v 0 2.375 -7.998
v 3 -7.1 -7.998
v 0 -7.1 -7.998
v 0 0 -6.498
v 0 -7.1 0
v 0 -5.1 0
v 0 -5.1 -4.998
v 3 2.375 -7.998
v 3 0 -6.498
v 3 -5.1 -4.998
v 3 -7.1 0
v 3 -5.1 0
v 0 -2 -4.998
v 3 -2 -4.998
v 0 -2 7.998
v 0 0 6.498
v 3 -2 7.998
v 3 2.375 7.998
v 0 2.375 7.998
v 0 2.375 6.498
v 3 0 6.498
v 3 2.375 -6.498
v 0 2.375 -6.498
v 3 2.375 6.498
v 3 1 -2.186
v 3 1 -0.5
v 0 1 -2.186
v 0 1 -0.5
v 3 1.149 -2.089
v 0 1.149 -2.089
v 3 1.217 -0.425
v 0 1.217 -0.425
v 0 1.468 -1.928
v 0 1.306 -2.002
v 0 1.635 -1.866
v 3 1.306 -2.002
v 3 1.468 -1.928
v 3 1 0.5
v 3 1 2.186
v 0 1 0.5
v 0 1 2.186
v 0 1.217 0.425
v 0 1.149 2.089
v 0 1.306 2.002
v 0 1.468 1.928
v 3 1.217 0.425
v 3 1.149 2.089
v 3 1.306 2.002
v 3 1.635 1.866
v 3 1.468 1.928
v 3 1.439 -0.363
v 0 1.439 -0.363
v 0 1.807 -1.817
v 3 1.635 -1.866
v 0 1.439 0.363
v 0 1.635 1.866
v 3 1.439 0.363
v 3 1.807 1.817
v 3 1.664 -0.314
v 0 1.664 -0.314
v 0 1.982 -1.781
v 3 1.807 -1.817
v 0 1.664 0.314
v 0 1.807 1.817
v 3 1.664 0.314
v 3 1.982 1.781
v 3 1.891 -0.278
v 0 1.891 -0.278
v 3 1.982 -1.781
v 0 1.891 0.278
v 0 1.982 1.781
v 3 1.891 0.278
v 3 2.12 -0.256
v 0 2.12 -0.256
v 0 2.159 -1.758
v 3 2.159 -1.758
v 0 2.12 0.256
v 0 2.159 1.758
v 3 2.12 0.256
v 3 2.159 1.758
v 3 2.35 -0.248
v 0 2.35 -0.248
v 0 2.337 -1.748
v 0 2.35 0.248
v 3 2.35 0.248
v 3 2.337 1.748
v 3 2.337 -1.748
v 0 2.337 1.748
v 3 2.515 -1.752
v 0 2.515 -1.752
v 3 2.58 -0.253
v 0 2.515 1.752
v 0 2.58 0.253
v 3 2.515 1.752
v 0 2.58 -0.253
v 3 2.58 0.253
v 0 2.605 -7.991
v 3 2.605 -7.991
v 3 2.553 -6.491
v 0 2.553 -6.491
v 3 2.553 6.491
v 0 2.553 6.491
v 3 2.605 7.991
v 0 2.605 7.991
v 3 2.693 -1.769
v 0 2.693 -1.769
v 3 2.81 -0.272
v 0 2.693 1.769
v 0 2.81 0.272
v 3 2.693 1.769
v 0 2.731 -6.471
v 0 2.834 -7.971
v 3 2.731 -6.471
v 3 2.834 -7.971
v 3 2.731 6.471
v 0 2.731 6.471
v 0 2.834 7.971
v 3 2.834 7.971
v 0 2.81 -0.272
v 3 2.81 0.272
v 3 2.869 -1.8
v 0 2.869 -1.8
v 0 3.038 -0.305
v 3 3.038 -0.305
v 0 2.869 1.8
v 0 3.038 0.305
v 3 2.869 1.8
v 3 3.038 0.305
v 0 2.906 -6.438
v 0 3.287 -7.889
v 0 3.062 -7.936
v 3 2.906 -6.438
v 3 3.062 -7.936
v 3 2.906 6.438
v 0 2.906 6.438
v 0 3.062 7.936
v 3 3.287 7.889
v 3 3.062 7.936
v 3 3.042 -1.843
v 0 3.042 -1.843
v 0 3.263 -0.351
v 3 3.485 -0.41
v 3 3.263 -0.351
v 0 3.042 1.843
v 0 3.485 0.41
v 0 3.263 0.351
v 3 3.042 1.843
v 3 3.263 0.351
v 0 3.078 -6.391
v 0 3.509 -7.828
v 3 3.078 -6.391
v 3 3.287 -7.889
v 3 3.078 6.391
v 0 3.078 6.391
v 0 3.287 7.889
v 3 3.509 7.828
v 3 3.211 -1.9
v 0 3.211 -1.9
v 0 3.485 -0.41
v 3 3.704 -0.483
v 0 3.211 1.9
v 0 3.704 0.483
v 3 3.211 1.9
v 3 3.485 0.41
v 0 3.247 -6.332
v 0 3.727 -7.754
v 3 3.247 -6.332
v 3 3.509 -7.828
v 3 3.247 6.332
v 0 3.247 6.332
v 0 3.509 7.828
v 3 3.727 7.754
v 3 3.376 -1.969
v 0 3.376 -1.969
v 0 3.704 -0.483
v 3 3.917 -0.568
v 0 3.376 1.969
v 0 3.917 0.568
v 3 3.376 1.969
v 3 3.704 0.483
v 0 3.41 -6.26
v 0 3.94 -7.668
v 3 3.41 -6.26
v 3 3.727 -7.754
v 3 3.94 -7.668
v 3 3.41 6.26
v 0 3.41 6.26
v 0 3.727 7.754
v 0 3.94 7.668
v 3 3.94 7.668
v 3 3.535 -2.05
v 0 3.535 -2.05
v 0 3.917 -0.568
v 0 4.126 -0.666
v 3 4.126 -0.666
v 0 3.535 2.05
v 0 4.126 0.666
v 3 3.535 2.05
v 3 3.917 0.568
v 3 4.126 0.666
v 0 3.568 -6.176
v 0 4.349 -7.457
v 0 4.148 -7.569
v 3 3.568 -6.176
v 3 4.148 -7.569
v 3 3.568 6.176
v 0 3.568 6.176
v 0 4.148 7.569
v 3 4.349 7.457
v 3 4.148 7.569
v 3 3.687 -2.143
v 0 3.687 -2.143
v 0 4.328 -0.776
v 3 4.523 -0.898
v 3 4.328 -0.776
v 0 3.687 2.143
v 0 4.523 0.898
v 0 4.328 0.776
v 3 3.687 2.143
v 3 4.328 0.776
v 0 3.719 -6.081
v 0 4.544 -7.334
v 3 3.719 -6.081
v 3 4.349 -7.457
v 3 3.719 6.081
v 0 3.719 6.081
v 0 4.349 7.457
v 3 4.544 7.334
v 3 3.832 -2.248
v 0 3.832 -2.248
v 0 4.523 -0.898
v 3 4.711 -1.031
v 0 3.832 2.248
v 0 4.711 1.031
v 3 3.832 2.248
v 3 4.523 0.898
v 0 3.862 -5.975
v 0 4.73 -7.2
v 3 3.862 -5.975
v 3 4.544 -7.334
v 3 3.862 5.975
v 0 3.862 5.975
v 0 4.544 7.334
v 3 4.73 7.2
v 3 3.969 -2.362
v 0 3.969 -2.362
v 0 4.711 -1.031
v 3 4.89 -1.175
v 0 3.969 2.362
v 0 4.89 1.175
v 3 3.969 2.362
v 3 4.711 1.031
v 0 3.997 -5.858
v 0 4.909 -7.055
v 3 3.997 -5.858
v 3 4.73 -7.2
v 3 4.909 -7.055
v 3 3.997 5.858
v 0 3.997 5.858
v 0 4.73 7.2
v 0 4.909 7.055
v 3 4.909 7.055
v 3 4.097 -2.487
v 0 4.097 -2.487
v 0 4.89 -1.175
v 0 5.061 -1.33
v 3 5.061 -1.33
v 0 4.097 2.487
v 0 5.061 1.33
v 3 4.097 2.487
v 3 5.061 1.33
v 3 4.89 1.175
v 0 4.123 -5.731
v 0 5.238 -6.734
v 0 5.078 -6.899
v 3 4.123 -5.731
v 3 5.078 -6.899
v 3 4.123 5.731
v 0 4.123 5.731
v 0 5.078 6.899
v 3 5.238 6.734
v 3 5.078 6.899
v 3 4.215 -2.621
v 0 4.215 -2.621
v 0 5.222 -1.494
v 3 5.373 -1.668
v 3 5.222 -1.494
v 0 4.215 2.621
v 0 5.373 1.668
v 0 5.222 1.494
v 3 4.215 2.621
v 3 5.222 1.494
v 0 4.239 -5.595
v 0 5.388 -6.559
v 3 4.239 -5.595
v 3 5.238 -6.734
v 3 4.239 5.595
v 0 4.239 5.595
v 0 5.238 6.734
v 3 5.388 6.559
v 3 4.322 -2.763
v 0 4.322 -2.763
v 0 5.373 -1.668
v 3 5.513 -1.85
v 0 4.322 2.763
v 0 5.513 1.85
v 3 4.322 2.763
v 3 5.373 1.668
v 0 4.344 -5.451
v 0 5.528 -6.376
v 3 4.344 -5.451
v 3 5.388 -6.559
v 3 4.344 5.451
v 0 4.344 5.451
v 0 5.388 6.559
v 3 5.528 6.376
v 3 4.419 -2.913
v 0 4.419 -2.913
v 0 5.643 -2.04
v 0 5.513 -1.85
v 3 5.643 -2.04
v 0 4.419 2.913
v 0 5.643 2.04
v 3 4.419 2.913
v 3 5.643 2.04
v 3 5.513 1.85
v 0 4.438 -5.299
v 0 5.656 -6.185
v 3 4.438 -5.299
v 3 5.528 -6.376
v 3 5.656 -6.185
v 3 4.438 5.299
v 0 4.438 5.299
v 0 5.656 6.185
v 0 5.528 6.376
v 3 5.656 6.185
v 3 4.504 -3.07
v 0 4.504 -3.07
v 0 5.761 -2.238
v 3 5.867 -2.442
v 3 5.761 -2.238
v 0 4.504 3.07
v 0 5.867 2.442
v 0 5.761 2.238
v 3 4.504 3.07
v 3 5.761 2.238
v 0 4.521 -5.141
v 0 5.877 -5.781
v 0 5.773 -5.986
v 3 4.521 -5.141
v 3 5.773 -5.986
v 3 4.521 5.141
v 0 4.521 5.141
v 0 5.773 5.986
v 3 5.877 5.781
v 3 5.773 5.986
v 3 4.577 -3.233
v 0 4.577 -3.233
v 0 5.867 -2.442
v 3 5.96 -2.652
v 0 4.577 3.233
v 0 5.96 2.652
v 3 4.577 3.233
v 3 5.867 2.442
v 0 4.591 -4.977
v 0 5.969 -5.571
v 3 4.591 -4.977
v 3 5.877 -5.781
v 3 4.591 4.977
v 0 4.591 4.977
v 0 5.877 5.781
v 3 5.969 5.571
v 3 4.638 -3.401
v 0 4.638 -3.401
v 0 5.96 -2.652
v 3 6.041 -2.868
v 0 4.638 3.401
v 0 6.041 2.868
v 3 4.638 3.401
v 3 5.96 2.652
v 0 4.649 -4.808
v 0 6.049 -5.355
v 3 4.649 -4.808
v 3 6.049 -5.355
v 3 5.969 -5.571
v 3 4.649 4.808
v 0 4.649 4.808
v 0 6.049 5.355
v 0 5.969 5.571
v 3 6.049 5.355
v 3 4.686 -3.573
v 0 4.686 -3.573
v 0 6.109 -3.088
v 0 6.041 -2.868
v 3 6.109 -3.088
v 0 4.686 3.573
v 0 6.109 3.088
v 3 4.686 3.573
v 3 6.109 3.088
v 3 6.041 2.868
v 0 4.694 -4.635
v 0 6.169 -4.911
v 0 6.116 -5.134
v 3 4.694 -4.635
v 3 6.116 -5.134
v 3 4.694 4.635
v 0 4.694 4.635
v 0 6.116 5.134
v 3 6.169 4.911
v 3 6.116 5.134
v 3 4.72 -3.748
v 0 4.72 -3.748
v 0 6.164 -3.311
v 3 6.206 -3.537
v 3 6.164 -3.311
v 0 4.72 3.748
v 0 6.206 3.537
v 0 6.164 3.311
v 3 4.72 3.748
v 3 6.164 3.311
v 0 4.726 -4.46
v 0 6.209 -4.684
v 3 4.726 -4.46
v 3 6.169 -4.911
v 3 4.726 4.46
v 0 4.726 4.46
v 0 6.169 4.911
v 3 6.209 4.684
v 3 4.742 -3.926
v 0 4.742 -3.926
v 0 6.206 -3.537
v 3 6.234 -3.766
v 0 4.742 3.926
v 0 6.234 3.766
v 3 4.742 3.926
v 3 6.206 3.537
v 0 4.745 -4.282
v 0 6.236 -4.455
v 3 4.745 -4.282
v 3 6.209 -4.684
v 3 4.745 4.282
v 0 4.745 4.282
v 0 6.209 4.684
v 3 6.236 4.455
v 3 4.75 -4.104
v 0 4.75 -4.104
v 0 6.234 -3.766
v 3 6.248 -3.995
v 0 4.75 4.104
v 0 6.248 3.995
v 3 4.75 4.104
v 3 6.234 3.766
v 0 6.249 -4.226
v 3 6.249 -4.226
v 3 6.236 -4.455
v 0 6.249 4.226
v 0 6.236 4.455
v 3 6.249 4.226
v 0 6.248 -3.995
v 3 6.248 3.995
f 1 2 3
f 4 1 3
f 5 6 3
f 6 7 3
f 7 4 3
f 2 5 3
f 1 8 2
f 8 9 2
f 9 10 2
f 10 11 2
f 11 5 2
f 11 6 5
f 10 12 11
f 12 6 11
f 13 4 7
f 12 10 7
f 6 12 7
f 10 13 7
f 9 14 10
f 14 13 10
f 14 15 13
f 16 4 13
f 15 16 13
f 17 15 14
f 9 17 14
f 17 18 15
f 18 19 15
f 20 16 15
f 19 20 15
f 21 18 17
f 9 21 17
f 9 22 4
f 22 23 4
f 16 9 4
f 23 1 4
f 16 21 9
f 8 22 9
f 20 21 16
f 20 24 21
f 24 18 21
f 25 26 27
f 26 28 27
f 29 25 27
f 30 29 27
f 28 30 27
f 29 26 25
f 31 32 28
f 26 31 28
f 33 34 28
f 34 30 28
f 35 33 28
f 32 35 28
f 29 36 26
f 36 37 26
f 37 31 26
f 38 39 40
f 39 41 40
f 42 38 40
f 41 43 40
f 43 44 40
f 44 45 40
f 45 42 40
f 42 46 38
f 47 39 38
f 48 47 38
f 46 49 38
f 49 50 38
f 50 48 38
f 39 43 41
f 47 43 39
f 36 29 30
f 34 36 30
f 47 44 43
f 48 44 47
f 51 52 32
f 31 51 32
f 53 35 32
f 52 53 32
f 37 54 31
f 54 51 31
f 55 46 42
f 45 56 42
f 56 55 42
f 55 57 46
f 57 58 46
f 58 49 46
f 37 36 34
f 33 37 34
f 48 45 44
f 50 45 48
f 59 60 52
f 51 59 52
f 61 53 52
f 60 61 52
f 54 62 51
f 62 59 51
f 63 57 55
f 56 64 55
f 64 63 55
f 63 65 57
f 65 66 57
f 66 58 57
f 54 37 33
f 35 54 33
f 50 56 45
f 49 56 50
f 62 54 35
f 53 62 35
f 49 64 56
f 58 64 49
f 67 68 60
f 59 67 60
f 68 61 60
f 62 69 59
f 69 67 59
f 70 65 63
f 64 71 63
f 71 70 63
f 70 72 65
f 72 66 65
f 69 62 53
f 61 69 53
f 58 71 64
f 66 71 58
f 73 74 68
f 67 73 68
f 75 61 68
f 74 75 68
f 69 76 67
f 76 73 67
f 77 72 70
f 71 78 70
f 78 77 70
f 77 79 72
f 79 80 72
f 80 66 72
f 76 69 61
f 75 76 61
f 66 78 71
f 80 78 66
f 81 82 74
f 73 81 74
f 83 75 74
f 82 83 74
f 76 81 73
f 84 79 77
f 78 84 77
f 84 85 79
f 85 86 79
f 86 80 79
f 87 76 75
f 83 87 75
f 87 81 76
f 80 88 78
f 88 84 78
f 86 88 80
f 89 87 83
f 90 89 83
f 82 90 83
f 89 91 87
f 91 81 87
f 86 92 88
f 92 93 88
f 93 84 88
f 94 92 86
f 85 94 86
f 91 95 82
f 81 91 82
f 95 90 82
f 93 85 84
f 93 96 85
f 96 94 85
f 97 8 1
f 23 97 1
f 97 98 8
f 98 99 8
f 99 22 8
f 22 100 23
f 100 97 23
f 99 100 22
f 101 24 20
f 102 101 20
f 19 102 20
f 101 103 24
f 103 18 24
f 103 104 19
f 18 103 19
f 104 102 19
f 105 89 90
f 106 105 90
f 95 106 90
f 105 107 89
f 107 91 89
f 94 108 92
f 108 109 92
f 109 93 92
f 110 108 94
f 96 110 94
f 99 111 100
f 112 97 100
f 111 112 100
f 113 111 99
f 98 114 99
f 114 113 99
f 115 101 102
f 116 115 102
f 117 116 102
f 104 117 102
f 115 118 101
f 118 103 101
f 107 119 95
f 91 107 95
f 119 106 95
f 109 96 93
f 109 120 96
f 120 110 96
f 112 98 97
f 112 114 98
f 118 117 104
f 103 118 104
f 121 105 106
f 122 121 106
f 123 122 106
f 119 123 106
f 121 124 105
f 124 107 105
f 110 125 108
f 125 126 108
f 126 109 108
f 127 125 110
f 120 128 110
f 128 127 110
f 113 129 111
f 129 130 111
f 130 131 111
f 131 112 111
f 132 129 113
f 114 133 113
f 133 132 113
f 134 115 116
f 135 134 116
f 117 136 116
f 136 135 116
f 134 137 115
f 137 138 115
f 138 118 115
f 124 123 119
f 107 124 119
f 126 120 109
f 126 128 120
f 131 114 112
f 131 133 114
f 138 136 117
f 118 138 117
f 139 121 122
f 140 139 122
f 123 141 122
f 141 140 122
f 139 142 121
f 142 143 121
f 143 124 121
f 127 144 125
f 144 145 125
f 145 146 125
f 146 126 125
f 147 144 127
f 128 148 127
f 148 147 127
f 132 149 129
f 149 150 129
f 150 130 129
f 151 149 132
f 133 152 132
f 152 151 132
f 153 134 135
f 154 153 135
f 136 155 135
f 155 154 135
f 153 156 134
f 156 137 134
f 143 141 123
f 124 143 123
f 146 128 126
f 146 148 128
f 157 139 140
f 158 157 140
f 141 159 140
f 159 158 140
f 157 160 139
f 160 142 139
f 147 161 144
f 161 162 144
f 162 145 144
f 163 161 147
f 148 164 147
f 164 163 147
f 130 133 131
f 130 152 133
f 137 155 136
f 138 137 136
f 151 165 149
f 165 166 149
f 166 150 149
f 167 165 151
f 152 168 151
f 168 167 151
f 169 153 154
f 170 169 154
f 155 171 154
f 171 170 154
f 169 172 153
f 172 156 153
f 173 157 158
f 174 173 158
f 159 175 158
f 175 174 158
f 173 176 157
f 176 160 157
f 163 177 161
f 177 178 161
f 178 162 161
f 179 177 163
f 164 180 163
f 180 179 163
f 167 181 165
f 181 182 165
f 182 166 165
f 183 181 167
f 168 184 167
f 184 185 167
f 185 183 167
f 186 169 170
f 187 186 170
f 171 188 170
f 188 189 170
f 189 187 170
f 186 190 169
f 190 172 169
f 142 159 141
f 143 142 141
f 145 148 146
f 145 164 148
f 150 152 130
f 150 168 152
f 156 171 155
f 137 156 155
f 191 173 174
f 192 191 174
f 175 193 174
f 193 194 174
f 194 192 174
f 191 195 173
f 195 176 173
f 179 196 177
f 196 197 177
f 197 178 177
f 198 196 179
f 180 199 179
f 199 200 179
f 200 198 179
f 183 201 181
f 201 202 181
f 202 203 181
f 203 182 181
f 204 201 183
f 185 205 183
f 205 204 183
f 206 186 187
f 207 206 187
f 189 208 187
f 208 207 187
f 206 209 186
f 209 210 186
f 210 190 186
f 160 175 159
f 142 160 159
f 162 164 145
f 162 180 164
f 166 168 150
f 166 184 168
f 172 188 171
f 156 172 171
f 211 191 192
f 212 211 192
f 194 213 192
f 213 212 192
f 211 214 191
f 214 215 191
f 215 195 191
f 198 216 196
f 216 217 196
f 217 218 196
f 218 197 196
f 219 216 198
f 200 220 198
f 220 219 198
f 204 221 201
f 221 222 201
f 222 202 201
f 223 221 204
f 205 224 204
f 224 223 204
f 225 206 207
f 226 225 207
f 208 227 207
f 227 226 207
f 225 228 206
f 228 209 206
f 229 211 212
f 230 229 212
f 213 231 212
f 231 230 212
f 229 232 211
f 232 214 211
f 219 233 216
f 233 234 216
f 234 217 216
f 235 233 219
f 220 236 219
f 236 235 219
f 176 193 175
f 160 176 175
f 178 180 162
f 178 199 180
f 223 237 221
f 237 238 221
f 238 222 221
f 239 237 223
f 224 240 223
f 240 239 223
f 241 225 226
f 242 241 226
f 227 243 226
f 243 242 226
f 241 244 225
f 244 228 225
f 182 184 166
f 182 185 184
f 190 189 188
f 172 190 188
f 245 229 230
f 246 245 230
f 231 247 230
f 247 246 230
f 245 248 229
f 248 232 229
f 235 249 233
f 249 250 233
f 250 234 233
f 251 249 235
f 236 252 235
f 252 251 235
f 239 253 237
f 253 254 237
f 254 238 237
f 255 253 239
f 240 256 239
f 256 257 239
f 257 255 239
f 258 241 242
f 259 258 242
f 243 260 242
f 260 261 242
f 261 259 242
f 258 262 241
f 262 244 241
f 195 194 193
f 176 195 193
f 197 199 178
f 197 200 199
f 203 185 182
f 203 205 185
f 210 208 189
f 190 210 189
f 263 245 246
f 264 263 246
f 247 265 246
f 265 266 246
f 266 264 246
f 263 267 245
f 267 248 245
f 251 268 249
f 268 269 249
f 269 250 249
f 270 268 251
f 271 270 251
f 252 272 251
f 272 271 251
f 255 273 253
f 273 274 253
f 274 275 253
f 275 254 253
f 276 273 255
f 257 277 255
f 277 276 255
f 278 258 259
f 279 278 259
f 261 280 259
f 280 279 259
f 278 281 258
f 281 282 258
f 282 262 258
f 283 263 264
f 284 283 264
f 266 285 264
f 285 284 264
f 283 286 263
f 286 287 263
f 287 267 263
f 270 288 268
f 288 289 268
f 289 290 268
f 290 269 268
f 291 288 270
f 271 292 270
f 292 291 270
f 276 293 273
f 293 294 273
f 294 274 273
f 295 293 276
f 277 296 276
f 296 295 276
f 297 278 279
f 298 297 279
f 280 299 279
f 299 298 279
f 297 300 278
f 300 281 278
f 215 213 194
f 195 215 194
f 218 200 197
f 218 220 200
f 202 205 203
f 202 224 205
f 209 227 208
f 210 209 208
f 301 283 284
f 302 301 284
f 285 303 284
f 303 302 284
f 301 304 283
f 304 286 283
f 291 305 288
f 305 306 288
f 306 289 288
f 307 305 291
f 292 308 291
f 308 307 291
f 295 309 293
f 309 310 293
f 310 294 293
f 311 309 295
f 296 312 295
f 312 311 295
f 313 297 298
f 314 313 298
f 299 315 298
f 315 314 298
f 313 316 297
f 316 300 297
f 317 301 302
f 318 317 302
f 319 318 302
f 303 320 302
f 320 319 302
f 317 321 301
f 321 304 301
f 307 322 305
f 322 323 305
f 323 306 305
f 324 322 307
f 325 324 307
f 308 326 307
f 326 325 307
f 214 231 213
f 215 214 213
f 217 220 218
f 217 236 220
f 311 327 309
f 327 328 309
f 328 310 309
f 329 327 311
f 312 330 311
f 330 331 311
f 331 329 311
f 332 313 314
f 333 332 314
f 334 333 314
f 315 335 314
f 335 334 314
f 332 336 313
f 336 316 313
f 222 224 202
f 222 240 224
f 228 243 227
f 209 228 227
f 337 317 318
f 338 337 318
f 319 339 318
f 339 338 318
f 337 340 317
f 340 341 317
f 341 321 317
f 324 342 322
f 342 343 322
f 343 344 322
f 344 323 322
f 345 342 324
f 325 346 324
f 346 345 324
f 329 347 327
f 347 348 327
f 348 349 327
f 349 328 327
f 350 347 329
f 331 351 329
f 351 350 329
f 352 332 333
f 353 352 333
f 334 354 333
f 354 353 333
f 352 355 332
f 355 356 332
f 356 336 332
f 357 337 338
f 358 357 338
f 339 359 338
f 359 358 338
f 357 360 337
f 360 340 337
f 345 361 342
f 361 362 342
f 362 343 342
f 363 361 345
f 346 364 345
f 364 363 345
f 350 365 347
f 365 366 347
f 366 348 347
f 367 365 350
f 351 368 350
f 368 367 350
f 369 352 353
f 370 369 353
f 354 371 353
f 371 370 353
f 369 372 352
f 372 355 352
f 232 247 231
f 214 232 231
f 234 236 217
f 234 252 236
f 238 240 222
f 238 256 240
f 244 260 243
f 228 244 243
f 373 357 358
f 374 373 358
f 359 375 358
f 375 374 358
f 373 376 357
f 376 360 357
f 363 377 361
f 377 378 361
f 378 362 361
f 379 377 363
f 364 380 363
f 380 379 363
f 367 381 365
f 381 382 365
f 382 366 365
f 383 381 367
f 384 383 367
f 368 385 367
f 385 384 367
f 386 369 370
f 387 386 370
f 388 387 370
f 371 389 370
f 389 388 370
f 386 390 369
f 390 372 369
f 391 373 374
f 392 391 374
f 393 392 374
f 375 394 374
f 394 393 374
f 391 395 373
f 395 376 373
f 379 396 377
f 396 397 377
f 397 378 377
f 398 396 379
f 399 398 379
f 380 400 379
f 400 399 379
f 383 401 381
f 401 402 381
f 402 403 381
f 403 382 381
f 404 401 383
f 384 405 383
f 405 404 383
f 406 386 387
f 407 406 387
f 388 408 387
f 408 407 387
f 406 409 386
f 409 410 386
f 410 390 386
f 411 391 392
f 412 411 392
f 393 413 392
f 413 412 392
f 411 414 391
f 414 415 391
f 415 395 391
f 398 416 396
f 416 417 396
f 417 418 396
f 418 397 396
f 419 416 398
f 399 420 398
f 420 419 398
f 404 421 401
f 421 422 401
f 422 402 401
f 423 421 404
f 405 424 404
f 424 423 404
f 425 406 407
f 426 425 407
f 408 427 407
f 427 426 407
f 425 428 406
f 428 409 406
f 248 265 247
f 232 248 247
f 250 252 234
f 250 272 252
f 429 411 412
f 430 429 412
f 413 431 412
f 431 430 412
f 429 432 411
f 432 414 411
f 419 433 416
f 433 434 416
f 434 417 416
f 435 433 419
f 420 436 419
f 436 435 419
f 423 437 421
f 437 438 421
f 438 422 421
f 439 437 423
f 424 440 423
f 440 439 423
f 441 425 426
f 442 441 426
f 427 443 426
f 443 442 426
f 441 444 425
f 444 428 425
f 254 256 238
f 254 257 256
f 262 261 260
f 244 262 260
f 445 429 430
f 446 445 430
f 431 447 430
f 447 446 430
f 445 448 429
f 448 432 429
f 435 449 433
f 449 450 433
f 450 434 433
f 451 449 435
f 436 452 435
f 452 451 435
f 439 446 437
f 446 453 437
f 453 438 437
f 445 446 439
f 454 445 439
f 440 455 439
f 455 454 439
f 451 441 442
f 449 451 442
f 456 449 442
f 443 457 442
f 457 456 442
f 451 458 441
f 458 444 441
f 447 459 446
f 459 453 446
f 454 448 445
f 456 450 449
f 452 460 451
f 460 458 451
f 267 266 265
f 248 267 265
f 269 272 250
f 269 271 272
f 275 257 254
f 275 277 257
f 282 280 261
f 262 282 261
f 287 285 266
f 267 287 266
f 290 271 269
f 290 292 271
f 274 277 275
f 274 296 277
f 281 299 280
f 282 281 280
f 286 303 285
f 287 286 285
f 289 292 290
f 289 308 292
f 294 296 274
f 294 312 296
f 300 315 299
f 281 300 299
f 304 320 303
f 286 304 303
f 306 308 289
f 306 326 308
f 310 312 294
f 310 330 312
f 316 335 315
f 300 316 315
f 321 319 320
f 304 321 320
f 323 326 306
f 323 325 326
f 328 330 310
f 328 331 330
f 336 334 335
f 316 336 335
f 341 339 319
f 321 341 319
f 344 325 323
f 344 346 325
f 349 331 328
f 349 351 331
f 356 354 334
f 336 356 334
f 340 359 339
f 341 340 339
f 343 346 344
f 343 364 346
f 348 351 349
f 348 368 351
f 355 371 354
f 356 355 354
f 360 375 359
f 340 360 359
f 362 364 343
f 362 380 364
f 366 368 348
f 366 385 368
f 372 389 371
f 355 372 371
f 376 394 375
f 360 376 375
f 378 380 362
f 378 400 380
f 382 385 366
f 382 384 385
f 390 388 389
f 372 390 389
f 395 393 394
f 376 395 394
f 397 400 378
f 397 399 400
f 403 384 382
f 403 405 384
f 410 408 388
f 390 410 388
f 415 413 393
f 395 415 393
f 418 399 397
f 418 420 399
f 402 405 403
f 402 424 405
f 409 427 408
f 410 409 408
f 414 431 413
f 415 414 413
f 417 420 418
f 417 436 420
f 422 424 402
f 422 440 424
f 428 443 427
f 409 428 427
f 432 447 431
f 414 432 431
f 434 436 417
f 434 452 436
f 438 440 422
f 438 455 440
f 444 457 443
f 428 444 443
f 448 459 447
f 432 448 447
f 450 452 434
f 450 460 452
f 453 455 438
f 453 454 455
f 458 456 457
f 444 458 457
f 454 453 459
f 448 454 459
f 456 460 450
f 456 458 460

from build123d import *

# Parameters (mm, degrees)
BOSS_EXTRUDE1_DEPTH = 3
BOSS_EXTRUDE2_DEPTH = 3


with BuildPart() as part:
    # Sketch1 → Boss-Extrude1 (new body)
    with BuildSketch(Plane(origin=(0, 0, 0), x_dir=(0, 0, -1), z_dir=(1, 0, 0))):
        with BuildLine():
            Line((-7.997844187, 2.375), (-7.997844187, -2))
            Line((-7.997844187, -2), (7.997844187, -2))
            Line((7.997844187, -2), (7.997844187, 2.375))
            ThreePointArc((7.997844187, 2.375), (3.423879317, 6.186439769), (0.5, 1))
            Line((0.5, 1), (2.186352513, 1))
            ThreePointArc((2.186352513, 1), (3.401228889, 4.637718799), (6.497844187, 2.375))
            Line((6.497844187, 2.375), (6.497844187, 0))
            Line((6.497844187, 0), (-6.497844187, 0))
            Line((-6.497844187, 0), (-6.497844187, 2.375))
            ThreePointArc((-6.497844187, 2.375), (-3.401228889, 4.637718799), (-2.186352513, 1))
            Line((-2.186352513, 1), (-0.5, 1))
            ThreePointArc((-0.5, 1), (-3.423879317, 6.186439769), (-7.997844187, 2.375))
        make_face()
    extrude(amount=BOSS_EXTRUDE1_DEPTH)

    # Sketch2 → Boss-Extrude2 (add)
    with BuildSketch(Plane.ZY):
        Polygon((-7.997844187, -2), (-7.997844187, -7.1), (0, -7.1), (0, -5.1), (-4.997844187, -5.1), (-4.997844187, -2), align=None)
    extrude(amount=-BOSS_EXTRUDE2_DEPTH)


solid = part.part
